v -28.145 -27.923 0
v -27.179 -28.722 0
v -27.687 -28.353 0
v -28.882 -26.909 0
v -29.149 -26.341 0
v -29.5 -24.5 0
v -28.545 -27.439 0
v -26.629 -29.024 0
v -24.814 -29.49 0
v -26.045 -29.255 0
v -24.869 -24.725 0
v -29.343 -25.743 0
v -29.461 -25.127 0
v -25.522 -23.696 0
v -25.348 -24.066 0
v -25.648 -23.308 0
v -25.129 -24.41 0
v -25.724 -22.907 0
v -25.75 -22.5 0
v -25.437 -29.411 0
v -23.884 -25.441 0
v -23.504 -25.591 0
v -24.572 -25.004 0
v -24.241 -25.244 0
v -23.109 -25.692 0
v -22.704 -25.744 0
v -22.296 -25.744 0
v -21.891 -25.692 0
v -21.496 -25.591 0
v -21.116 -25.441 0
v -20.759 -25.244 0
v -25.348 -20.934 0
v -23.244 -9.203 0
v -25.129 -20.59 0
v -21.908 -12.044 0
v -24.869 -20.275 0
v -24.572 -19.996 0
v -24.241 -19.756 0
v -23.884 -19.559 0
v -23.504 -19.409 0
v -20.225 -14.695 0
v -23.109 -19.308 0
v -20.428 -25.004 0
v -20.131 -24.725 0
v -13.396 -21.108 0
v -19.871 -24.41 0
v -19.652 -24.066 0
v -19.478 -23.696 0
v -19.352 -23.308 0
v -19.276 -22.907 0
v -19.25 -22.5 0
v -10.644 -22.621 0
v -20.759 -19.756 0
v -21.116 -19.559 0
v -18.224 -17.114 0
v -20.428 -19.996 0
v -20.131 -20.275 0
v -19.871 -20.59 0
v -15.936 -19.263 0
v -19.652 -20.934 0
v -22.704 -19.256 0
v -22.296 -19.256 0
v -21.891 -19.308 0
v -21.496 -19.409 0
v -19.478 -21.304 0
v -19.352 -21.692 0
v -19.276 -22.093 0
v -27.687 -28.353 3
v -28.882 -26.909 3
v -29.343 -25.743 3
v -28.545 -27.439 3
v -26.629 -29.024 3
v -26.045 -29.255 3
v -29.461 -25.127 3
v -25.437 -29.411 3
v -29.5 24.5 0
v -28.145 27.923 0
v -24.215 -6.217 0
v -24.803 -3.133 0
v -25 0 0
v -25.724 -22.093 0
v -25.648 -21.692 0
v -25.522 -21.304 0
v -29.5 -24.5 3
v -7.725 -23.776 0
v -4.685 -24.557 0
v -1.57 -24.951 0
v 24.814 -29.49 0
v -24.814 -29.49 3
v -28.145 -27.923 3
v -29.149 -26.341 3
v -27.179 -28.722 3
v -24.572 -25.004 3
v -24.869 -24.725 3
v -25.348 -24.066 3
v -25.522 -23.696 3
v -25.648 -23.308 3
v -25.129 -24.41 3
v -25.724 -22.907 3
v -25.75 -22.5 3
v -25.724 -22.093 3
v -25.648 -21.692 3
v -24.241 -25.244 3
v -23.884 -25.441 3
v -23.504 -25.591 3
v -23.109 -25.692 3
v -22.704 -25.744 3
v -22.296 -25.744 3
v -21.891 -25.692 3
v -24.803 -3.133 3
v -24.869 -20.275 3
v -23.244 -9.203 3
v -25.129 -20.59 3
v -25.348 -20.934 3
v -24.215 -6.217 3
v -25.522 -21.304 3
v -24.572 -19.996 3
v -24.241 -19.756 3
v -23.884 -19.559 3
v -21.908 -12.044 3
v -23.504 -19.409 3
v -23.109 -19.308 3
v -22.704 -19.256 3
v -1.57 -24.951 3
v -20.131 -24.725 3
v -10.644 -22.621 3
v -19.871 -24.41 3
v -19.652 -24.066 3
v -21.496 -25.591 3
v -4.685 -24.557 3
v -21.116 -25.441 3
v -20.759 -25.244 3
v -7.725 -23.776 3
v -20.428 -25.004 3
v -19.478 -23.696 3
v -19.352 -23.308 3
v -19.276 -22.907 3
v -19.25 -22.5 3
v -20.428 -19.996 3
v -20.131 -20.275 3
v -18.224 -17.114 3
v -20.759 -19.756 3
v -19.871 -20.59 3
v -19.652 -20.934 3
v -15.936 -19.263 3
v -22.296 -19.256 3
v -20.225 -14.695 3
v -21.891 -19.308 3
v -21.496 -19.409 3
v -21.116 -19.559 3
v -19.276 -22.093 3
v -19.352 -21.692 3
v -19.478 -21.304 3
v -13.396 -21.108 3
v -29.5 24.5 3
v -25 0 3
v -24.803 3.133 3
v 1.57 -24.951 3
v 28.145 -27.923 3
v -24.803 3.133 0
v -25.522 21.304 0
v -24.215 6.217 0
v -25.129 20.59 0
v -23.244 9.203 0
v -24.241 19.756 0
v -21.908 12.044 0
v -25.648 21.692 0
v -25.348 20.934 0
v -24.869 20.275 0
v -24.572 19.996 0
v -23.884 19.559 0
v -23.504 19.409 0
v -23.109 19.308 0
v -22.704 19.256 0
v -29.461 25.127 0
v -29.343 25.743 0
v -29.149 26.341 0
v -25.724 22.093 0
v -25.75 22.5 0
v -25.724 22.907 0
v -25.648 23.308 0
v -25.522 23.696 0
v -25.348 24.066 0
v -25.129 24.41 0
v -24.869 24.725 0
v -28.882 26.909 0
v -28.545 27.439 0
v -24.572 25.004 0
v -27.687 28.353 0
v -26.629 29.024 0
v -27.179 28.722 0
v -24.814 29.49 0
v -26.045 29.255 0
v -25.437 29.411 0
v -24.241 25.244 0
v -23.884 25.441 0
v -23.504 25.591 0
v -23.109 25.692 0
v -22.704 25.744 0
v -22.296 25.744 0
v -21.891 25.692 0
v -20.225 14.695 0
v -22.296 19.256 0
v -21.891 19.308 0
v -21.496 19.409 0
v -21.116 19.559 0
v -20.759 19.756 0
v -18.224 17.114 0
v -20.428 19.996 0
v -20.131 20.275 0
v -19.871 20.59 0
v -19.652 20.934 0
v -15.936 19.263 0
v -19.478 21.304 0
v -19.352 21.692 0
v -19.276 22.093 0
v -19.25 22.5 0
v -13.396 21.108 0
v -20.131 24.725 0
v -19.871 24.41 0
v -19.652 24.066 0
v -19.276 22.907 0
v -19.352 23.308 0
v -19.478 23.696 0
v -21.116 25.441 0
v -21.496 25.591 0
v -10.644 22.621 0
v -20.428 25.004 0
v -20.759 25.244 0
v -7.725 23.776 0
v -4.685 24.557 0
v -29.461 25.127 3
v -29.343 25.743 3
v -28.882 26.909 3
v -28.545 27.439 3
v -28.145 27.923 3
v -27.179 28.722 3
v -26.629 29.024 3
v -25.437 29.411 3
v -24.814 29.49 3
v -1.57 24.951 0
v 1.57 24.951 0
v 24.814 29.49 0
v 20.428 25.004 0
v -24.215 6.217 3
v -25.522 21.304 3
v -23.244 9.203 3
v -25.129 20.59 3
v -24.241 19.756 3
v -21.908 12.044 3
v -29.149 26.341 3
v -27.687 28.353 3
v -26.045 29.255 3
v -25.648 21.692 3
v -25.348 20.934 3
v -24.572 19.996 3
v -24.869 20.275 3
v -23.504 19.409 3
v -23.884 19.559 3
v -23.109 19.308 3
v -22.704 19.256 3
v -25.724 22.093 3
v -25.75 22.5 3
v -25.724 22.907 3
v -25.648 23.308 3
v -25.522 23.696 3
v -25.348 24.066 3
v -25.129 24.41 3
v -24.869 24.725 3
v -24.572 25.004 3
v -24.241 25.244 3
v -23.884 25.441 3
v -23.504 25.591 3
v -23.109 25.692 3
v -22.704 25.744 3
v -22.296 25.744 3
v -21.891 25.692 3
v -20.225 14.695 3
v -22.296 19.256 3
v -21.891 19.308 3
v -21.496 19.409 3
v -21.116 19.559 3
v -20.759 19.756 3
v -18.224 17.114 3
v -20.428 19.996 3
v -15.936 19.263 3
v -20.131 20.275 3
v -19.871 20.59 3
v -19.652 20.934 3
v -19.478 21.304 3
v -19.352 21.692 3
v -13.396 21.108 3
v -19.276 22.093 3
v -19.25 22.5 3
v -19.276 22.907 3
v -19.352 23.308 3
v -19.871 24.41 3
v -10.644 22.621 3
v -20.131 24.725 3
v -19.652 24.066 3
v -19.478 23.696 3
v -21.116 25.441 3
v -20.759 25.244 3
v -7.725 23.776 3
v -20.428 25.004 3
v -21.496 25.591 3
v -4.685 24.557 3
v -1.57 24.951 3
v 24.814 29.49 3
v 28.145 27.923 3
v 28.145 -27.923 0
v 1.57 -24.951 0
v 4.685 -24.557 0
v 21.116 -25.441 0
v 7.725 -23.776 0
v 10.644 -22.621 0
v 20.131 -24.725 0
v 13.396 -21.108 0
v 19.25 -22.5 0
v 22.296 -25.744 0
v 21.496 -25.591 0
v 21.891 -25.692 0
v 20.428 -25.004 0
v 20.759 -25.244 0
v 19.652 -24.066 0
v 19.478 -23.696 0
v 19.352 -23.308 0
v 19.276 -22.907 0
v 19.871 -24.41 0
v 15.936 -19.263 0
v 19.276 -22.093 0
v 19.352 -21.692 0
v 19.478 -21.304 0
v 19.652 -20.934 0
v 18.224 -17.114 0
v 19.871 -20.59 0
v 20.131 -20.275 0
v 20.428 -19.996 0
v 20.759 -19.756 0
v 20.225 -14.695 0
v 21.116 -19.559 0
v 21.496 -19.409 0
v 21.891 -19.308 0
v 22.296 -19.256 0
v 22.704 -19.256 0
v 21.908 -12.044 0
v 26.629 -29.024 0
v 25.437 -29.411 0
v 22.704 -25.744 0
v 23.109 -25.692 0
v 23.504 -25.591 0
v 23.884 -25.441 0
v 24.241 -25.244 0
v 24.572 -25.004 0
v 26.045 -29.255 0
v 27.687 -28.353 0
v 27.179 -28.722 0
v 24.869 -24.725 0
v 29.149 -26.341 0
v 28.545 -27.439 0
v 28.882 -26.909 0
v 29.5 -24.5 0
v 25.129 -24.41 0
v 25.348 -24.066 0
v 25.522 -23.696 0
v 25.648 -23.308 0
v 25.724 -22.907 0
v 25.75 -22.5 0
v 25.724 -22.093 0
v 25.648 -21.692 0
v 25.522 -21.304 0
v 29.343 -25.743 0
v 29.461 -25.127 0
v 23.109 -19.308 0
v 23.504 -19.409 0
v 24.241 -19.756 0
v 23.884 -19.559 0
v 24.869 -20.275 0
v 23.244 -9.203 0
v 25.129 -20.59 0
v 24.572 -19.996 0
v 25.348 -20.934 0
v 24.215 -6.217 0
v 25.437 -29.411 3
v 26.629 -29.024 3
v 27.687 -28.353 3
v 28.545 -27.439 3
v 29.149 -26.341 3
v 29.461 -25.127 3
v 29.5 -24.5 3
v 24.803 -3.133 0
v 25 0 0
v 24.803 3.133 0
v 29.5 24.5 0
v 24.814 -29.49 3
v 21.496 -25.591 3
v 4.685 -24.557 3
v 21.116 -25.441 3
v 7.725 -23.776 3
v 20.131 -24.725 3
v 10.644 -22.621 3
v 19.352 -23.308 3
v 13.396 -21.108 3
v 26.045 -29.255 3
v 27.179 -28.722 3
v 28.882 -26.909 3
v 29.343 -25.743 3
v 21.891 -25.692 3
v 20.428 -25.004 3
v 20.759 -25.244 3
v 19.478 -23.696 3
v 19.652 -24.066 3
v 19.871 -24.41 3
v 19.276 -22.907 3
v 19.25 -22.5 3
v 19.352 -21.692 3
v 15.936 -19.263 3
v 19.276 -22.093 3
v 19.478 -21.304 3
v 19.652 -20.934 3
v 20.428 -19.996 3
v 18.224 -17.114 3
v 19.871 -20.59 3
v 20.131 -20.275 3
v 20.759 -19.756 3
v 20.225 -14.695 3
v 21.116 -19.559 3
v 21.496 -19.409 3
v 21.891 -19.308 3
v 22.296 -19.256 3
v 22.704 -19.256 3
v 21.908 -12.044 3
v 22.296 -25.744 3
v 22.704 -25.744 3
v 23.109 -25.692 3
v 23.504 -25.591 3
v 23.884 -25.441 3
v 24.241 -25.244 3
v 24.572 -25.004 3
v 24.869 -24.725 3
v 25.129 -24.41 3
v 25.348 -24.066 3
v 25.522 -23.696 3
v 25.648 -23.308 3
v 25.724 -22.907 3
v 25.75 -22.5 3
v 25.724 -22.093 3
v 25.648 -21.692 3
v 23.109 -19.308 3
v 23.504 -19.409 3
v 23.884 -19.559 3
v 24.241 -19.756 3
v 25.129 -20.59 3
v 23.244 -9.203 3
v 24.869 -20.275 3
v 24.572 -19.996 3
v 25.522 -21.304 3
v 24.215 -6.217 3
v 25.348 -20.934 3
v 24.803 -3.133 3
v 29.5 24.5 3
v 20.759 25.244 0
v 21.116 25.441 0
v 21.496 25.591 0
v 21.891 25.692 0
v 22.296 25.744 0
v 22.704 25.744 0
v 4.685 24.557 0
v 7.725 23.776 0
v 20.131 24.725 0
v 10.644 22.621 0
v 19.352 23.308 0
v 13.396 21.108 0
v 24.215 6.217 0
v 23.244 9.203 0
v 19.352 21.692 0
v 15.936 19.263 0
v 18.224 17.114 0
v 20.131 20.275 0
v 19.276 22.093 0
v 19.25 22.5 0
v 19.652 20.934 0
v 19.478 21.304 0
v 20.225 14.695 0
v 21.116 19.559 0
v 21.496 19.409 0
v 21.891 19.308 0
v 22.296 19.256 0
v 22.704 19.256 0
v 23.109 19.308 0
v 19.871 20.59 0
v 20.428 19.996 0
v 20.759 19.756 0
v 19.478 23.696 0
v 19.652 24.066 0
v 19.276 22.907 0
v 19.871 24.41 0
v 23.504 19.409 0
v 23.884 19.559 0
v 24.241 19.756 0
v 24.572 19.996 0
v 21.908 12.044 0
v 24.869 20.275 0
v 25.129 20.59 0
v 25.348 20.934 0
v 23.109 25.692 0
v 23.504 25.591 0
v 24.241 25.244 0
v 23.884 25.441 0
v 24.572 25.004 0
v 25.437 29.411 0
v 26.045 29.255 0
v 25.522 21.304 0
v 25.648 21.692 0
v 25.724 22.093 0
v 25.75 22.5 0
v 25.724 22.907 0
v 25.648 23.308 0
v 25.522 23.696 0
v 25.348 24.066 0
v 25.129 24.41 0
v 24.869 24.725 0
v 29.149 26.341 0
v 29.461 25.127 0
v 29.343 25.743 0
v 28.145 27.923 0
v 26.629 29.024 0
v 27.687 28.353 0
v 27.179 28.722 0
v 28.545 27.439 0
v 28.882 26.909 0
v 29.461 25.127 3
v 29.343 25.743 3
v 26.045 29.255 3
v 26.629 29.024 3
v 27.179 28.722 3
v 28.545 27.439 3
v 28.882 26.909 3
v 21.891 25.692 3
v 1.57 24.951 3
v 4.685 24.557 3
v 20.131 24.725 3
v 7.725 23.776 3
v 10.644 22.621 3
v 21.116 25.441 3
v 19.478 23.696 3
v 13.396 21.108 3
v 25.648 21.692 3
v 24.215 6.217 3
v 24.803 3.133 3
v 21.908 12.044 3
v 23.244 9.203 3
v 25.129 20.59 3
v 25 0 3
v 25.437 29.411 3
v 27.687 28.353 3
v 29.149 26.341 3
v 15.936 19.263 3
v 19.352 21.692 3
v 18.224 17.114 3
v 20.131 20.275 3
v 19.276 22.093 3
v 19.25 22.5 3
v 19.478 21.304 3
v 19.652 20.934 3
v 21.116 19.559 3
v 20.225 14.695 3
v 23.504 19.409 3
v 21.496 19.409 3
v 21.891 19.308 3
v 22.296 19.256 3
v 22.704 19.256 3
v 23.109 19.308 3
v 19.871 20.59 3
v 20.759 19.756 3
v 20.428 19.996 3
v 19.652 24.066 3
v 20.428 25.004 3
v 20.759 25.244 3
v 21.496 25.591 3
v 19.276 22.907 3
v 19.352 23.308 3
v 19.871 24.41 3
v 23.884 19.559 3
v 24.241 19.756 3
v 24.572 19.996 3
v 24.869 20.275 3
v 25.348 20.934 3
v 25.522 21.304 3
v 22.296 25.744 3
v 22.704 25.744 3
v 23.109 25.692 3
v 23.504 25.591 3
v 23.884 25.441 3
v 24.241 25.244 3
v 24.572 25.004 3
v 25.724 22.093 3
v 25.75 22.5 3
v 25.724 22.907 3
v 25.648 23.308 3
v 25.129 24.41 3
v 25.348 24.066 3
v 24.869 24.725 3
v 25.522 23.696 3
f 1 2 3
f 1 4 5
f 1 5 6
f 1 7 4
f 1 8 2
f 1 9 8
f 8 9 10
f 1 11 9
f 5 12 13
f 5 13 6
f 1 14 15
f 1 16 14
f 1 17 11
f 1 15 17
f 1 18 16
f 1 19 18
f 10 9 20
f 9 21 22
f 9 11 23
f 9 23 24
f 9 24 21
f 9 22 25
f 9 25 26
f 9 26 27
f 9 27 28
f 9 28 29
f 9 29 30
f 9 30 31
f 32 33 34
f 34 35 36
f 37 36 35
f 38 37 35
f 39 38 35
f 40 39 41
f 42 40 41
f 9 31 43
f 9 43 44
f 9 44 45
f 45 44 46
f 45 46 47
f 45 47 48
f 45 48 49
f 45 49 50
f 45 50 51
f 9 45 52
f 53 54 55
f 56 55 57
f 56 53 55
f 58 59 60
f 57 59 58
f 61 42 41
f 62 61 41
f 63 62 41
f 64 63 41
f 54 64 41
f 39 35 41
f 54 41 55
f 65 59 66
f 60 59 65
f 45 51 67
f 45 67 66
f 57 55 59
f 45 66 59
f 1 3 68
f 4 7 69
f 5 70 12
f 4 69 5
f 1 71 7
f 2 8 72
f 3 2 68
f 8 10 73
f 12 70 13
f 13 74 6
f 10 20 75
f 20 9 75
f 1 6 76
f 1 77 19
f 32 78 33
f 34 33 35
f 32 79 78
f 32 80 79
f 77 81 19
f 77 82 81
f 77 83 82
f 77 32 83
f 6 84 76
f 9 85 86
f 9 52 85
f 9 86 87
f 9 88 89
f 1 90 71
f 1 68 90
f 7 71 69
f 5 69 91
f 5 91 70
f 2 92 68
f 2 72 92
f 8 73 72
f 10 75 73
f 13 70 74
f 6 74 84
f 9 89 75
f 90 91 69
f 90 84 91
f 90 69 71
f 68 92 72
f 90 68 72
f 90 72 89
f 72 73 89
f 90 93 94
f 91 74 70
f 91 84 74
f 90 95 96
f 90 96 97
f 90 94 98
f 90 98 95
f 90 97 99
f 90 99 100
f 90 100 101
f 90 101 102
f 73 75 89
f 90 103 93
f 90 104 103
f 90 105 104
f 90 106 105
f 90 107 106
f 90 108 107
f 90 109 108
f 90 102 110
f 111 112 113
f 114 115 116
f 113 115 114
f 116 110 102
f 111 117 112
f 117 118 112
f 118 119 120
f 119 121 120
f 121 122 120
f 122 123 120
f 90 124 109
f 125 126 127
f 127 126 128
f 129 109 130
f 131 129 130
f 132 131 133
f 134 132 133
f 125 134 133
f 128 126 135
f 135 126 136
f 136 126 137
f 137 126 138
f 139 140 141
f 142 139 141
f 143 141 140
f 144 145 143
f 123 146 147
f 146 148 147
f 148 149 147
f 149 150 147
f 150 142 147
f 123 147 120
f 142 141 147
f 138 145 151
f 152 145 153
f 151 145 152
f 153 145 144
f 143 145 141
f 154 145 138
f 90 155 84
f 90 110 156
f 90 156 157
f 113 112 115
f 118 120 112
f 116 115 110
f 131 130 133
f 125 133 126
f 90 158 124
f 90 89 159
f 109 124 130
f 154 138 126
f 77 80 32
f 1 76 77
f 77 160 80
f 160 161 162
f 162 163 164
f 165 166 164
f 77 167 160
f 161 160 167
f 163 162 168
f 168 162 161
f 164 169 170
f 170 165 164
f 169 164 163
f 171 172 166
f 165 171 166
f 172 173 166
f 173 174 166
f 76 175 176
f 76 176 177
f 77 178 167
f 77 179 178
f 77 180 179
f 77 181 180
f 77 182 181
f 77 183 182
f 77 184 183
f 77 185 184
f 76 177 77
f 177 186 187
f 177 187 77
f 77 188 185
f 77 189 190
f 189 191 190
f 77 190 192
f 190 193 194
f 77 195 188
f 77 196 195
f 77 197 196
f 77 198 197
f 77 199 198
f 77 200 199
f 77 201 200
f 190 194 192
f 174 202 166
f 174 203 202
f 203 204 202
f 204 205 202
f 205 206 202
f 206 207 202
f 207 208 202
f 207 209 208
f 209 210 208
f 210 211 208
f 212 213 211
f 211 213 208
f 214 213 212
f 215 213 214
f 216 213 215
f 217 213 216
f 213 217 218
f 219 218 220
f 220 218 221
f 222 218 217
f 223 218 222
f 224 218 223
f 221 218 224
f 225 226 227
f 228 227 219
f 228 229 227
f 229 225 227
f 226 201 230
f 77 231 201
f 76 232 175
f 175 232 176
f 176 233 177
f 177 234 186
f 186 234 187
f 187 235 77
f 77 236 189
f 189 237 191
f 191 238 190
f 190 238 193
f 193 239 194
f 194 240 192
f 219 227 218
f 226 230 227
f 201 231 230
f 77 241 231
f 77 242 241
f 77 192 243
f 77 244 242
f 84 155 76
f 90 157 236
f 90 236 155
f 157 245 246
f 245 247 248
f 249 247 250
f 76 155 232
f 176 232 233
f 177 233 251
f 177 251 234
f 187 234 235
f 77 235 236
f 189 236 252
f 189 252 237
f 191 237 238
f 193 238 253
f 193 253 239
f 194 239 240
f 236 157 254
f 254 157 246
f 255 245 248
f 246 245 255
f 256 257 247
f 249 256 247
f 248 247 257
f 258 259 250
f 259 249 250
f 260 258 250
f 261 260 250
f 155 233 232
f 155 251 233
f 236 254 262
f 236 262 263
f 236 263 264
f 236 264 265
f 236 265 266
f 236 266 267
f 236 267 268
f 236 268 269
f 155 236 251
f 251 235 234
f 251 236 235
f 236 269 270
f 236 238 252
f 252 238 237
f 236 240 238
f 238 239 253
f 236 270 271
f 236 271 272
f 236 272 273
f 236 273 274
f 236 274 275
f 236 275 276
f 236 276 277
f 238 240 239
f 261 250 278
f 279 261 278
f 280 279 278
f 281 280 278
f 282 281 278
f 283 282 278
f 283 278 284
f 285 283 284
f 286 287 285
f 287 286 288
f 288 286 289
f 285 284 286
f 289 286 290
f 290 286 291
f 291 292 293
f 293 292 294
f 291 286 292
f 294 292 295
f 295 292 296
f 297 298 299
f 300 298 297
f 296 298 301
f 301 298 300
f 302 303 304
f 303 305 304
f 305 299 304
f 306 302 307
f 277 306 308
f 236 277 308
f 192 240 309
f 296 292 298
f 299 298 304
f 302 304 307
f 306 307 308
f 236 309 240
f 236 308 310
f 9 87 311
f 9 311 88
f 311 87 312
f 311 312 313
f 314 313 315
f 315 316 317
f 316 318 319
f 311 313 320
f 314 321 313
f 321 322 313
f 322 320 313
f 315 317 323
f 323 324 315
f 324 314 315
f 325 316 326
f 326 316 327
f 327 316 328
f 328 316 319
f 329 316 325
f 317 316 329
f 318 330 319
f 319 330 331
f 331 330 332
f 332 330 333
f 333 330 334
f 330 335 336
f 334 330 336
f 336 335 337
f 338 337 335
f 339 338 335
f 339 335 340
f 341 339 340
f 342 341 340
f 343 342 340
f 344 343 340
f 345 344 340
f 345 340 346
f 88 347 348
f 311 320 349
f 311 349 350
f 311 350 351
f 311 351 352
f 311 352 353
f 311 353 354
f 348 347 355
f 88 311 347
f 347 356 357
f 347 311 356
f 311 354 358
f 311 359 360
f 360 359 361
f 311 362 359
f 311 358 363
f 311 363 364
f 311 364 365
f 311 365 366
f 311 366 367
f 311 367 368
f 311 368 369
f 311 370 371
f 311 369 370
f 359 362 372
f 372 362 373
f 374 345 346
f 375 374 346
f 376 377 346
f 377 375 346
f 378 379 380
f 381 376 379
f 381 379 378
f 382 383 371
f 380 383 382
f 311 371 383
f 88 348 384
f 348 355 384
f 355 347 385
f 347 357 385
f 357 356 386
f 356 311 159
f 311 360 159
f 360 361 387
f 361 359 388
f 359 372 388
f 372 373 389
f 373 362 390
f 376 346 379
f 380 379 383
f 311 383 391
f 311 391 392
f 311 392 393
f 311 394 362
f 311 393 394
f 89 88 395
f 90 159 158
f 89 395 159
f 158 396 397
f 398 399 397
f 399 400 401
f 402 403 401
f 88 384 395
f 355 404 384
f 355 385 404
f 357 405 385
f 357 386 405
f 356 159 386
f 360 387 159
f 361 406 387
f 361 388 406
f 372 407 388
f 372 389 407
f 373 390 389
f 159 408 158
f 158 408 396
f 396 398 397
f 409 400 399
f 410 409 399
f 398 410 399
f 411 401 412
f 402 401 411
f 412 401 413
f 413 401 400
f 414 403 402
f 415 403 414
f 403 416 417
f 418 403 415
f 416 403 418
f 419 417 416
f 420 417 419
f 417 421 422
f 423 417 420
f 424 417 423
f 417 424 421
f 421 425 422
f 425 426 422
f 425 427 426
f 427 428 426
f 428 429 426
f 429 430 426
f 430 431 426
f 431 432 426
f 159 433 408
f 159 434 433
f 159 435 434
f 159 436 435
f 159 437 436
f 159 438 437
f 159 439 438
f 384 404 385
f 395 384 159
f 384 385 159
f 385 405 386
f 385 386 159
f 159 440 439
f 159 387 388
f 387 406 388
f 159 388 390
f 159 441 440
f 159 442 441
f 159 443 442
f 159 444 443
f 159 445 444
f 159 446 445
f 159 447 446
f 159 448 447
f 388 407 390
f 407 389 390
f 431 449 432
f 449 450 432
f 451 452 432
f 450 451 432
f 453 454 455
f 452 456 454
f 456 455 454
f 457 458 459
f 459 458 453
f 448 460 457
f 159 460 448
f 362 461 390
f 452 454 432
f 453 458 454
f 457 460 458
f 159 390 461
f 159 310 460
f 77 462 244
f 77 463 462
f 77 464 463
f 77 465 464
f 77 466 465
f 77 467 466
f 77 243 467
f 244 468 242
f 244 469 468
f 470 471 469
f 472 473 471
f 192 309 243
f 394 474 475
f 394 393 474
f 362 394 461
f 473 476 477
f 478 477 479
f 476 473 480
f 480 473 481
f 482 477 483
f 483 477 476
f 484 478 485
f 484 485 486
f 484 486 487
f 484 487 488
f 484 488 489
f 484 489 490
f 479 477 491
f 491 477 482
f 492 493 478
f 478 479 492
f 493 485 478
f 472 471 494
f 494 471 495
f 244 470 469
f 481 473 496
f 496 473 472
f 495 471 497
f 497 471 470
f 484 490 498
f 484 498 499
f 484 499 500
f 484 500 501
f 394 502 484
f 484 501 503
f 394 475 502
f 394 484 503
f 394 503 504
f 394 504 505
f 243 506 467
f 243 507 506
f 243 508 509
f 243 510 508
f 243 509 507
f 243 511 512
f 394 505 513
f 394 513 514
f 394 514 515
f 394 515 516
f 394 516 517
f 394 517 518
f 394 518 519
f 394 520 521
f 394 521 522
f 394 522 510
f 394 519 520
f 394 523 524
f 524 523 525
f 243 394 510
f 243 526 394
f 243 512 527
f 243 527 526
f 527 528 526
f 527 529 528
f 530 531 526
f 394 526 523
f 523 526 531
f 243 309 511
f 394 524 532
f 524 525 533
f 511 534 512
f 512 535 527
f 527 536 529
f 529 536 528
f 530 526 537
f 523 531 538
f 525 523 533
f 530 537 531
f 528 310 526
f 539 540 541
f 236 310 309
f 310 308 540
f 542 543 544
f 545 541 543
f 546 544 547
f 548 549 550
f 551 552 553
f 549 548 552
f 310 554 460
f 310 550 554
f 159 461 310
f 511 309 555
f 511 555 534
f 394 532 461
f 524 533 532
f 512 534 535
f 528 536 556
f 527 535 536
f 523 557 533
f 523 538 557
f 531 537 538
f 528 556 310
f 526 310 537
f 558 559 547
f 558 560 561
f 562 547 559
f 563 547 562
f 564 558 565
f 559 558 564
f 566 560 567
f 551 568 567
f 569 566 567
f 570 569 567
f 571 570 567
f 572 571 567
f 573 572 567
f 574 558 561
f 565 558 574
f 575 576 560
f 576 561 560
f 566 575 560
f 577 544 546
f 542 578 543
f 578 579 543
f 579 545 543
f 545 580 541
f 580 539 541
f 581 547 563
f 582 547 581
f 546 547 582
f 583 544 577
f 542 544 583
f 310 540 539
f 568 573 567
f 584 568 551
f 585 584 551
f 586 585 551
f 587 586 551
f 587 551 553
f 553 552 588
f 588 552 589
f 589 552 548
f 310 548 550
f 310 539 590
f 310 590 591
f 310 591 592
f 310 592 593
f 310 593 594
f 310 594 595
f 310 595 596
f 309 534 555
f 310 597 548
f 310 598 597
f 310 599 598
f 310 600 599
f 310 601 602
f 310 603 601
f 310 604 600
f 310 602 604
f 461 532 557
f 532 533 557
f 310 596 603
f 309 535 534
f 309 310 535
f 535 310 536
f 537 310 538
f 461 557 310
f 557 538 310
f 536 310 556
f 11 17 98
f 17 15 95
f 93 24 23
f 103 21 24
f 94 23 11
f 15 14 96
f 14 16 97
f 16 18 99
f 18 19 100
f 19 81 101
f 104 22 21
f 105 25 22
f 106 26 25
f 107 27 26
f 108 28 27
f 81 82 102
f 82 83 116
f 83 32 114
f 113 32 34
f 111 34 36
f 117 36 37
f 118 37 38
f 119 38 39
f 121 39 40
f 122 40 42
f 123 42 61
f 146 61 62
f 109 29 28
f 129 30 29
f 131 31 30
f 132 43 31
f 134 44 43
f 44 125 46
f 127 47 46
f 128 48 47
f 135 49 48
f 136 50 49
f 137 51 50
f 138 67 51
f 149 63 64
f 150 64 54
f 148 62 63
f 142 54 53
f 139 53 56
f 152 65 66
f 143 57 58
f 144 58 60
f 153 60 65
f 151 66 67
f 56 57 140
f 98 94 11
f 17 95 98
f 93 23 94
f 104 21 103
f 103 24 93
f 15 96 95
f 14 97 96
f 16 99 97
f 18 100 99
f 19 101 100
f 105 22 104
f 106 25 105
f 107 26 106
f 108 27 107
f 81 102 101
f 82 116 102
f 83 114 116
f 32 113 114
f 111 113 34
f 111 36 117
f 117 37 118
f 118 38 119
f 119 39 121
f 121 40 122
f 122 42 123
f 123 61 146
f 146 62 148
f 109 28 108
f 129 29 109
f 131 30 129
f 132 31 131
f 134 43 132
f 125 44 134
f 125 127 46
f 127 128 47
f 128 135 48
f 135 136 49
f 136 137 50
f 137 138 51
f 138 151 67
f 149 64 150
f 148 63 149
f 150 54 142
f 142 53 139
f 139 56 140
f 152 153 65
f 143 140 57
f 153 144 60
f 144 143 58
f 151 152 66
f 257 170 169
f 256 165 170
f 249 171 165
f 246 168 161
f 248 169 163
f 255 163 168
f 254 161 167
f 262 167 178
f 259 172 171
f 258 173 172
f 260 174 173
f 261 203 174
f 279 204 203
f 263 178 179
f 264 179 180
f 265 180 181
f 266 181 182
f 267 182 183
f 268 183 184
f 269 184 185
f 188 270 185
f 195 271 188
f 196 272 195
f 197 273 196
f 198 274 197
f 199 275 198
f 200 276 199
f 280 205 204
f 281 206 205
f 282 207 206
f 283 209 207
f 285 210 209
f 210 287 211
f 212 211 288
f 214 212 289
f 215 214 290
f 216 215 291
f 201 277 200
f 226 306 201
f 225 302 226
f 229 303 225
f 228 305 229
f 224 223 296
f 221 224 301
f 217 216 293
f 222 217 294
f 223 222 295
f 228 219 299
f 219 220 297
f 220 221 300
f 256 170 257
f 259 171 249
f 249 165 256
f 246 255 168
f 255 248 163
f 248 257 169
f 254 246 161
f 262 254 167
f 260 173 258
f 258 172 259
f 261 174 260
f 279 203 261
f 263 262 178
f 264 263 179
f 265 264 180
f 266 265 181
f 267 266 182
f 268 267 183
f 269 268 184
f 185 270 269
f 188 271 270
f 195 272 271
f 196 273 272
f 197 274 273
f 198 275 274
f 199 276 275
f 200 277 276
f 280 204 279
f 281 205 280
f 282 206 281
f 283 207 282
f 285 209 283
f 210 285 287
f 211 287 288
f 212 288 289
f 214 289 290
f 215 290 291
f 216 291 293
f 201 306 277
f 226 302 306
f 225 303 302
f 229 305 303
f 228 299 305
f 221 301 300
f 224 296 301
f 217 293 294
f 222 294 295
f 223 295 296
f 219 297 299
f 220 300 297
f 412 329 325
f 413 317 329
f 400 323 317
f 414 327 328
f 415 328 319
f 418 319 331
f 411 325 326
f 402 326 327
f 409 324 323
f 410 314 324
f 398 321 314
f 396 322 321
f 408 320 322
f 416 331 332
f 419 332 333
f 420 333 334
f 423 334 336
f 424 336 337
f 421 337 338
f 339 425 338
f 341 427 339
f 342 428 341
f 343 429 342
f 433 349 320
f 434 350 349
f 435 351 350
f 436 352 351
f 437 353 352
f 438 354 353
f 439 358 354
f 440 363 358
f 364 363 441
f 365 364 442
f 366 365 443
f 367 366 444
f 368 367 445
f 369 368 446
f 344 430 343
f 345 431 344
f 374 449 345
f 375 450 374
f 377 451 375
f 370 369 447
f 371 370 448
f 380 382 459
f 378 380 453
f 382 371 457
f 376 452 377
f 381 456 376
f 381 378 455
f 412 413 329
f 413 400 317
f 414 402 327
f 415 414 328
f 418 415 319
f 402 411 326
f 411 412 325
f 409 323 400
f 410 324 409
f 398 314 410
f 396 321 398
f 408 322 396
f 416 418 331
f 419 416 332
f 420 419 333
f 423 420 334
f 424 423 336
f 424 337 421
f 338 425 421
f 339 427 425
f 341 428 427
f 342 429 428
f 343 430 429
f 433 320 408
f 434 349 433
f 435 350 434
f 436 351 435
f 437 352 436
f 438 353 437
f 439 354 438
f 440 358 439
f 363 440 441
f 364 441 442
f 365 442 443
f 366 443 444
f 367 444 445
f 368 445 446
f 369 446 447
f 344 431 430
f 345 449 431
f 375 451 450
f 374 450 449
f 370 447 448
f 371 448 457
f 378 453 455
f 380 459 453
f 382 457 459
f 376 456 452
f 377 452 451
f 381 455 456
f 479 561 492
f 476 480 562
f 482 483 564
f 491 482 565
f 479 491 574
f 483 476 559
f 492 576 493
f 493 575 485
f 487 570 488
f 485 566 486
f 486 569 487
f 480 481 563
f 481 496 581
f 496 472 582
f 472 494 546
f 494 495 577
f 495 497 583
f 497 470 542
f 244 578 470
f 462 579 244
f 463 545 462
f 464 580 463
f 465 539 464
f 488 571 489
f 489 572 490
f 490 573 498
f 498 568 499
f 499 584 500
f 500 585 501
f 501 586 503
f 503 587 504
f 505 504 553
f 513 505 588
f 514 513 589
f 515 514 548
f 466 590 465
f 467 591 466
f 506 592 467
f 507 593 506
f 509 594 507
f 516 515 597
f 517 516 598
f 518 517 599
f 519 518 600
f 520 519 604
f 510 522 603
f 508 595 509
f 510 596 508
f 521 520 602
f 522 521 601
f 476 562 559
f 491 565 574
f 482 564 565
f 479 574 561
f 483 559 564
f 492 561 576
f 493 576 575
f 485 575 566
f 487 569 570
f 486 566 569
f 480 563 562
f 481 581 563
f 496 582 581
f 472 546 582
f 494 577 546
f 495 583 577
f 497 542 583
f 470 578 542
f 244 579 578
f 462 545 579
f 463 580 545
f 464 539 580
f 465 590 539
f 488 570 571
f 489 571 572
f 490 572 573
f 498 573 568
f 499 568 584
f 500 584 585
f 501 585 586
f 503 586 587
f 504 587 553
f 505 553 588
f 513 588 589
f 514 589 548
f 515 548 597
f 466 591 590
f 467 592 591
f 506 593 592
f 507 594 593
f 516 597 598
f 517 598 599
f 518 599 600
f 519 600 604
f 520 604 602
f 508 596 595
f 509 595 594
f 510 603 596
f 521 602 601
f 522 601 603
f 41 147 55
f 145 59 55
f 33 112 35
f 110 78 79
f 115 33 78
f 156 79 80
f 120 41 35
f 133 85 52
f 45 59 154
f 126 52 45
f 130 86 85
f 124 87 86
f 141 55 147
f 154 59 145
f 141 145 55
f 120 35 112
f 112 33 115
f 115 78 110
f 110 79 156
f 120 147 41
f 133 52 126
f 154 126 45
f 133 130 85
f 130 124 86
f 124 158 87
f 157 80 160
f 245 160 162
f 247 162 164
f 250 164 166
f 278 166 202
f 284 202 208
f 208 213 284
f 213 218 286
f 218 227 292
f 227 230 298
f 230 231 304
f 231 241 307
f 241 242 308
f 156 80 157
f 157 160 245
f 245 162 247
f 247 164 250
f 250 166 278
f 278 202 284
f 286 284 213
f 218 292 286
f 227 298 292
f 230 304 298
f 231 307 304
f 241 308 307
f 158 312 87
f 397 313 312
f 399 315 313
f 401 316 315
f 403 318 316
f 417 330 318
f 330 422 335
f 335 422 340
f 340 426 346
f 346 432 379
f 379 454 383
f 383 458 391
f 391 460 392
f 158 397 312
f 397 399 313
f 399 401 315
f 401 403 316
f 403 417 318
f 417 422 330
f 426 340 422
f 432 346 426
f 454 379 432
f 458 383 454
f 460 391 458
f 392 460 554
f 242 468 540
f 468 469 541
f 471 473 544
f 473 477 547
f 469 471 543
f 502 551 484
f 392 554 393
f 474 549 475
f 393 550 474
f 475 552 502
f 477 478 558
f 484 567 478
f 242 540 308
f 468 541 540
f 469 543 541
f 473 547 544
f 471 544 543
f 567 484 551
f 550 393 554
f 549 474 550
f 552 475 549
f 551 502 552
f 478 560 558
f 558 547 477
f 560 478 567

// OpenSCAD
$fn = 50;

difference() {
	union() {
		hull() {
			translate(v = [-24.5, 24.5, 0]) {
				cylinder(h = 3, r = 5);
			}
			translate(v = [24.5, 24.5, 0]) {
				cylinder(h = 3, r = 5);
			}
			translate(v = [-24.5, -24.5, 0]) {
				cylinder(h = 3, r = 5);
			}
			translate(v = [24.5, -24.5, 0]) {
				cylinder(h = 3, r = 5);
			}
		}
	}
	union() {
		translate(v = [-22.5, -22.5, -100.0]) {
			cylinder(h = 200, r = 3.25);
		}
		translate(v = [-22.5, 22.5, -100.0]) {
			cylinder(h = 200, r = 3.25);
		}
		translate(v = [22.5, -22.5, -100.0]) {
			cylinder(h = 200, r = 3.25);
		}
		translate(v = [22.5, 22.5, -100.0]) {
			cylinder(h = 200, r = 3.25);
		}
		translate(v = [-22.5, -22.5, -100.0]) {
			cylinder(h = 200, r = 1.8);
		}
		translate(v = [-22.5, 22.5, -100.0]) {
			cylinder(h = 200, r = 1.8);
		}
		translate(v = [22.5, -22.5, -100.0]) {
			cylinder(h = 200, r = 1.8);
		}
		translate(v = [22.5, 22.5, -100.0]) {
			cylinder(h = 200, r = 1.8);
		}
		cylinder(h = 3, r = 25.0);
	}
}
